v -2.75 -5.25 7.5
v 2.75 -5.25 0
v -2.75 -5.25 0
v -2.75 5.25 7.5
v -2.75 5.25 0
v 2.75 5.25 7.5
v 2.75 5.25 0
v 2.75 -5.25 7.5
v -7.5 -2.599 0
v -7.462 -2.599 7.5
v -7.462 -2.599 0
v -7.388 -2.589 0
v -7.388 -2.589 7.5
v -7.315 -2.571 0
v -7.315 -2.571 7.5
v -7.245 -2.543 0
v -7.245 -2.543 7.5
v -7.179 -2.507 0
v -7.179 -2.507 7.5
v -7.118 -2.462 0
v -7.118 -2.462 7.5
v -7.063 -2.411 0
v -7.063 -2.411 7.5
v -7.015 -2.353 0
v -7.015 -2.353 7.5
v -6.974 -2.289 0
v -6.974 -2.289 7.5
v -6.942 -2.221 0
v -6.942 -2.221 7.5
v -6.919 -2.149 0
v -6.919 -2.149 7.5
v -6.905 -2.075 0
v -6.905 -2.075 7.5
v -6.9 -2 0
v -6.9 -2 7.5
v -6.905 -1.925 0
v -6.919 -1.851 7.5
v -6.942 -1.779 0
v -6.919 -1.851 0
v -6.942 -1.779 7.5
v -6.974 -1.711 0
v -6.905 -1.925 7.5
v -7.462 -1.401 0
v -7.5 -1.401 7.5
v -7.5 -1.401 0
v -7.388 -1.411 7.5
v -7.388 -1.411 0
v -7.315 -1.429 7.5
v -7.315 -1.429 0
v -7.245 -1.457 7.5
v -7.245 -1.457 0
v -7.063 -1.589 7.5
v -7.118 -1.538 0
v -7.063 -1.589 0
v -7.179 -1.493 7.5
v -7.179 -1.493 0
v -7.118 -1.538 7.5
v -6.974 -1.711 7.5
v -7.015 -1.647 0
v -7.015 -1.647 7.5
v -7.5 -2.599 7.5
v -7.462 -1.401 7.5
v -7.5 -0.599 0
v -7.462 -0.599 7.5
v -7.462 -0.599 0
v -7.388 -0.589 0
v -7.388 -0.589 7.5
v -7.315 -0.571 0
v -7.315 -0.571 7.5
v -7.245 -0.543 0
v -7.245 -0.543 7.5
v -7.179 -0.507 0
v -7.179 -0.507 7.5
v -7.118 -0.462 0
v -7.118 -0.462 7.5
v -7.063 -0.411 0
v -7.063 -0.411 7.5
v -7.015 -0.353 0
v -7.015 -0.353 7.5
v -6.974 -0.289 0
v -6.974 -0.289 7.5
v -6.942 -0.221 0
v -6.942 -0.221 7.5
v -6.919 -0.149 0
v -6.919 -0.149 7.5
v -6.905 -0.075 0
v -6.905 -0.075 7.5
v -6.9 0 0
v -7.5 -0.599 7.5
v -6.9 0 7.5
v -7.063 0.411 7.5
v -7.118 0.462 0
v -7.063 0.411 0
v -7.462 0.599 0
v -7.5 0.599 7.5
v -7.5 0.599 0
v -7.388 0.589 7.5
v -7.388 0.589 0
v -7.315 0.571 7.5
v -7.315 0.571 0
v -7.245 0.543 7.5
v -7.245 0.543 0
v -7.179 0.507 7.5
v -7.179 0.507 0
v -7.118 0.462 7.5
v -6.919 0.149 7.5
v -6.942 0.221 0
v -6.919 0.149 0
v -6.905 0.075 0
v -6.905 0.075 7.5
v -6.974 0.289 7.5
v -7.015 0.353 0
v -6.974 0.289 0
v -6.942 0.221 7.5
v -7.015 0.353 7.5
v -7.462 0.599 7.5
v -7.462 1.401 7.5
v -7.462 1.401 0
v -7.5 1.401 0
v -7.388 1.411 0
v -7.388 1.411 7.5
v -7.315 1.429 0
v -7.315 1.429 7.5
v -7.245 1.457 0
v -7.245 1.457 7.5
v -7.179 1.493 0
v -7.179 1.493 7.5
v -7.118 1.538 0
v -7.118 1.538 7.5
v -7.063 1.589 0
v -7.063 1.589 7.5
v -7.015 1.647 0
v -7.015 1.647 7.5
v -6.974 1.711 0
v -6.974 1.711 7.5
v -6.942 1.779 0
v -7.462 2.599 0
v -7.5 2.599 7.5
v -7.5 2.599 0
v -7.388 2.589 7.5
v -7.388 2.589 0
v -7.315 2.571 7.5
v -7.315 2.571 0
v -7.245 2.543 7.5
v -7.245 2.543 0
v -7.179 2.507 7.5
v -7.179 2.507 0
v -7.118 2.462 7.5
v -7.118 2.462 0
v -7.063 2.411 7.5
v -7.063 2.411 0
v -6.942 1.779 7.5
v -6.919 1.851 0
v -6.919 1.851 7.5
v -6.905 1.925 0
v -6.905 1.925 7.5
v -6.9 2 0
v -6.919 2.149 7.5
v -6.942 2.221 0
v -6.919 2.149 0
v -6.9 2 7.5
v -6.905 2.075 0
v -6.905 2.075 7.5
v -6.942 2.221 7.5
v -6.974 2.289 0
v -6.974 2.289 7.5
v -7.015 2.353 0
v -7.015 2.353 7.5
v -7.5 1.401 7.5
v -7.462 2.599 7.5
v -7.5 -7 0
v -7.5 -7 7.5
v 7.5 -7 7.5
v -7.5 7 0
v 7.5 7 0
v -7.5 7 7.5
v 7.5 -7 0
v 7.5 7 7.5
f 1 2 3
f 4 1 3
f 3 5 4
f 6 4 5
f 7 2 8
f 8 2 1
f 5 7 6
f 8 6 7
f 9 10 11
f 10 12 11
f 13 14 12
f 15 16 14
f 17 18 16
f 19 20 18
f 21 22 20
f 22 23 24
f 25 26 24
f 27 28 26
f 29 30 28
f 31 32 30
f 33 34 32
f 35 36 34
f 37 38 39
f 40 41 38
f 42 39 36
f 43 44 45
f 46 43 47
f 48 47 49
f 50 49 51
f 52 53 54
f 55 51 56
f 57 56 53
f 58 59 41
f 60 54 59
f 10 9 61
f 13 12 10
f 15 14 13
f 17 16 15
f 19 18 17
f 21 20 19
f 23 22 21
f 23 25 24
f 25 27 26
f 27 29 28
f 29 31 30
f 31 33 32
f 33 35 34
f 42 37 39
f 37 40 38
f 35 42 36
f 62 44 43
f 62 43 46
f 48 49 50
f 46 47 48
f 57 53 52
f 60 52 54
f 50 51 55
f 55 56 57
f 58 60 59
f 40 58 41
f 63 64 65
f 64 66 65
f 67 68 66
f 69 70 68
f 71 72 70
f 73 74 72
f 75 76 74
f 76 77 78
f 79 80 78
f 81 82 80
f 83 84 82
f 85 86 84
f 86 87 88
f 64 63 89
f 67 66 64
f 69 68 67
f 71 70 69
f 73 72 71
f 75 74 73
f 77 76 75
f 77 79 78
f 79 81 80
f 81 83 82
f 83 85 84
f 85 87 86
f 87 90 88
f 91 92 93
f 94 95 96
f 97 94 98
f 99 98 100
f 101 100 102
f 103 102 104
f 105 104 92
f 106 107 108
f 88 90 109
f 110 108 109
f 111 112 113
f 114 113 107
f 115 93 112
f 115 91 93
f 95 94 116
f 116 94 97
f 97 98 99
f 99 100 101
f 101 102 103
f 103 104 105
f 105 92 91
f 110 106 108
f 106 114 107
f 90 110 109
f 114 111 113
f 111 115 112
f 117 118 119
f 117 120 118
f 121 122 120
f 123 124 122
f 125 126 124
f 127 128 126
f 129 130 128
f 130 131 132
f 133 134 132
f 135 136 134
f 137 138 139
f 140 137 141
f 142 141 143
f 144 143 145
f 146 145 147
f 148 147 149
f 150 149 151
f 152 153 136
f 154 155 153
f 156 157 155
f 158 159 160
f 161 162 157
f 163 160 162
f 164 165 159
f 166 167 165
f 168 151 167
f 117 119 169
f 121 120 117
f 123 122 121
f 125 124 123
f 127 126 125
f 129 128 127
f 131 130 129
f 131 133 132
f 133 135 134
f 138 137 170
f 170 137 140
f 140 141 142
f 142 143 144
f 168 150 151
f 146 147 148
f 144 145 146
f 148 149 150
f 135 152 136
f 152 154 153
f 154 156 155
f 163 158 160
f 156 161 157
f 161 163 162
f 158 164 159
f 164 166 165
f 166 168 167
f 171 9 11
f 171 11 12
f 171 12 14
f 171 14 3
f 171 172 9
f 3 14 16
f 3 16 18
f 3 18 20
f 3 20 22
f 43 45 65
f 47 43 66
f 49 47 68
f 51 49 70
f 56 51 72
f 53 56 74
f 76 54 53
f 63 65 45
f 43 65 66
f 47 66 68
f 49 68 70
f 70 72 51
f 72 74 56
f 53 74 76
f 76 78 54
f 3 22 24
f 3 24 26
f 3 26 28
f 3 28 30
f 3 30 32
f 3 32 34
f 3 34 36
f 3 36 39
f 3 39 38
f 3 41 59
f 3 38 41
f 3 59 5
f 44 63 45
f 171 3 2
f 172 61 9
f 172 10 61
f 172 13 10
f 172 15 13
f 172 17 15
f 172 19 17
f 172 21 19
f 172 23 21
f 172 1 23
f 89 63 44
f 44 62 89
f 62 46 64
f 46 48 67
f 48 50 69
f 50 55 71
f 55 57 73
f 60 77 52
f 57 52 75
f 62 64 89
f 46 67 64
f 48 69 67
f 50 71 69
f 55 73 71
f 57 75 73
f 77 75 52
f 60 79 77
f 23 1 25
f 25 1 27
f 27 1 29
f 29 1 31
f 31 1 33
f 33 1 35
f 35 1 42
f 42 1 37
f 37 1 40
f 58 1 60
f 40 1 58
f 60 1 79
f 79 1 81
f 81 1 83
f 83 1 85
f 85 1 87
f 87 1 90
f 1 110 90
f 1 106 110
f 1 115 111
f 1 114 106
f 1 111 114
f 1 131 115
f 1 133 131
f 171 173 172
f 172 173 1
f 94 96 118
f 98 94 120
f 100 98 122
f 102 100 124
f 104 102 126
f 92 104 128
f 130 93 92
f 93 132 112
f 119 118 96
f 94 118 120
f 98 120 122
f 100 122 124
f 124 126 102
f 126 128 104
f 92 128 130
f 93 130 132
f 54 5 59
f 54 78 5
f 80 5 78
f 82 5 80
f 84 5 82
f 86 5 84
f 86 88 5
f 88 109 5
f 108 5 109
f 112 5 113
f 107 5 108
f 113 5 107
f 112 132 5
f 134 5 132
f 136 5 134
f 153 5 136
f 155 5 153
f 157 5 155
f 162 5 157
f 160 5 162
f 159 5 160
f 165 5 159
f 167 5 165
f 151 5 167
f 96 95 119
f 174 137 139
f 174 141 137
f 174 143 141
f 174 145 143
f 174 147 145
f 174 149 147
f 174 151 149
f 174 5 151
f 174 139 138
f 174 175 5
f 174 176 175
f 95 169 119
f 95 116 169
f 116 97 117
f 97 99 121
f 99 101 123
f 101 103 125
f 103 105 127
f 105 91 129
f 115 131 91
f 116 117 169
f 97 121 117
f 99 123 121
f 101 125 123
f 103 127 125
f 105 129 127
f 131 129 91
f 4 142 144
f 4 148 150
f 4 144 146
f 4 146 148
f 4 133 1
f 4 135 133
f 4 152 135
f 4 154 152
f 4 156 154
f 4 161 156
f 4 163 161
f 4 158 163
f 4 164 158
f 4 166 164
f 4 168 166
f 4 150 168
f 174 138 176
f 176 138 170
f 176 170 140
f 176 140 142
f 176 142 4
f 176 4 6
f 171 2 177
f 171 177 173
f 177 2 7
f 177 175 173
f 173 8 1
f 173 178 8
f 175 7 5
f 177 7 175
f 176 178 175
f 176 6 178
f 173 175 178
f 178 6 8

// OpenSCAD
$fn = 50;

difference() {
	union() {
		translate(v = [0, -5, 0]) {
			rotate(a = [0, 0, 0]) {
				difference() {
					union() {
						translate(v = [-7.5, -2.0, 0]) {
							cube(size = [15.0, 14.0, 7.5]);
						}
					}
					union() {
						translate(v = [-2.75, -0.25, -0.1]) {
							cube(size = [5.5, 10.5, 7.7]);
						}
						translate(v = [-7.5, 3, -0.1]) {
							cylinder(h = 7.7, r = 0.6);
						}
						translate(v = [-7.5, 5, -0.1]) {
							cylinder(h = 7.7, r = 0.6);
						}
						translate(v = [-7.5, 7, -0.1]) {
							cylinder(h = 7.7, r = 0.6);
						}
					}
				}
			}
		}
	}
	union();
}
